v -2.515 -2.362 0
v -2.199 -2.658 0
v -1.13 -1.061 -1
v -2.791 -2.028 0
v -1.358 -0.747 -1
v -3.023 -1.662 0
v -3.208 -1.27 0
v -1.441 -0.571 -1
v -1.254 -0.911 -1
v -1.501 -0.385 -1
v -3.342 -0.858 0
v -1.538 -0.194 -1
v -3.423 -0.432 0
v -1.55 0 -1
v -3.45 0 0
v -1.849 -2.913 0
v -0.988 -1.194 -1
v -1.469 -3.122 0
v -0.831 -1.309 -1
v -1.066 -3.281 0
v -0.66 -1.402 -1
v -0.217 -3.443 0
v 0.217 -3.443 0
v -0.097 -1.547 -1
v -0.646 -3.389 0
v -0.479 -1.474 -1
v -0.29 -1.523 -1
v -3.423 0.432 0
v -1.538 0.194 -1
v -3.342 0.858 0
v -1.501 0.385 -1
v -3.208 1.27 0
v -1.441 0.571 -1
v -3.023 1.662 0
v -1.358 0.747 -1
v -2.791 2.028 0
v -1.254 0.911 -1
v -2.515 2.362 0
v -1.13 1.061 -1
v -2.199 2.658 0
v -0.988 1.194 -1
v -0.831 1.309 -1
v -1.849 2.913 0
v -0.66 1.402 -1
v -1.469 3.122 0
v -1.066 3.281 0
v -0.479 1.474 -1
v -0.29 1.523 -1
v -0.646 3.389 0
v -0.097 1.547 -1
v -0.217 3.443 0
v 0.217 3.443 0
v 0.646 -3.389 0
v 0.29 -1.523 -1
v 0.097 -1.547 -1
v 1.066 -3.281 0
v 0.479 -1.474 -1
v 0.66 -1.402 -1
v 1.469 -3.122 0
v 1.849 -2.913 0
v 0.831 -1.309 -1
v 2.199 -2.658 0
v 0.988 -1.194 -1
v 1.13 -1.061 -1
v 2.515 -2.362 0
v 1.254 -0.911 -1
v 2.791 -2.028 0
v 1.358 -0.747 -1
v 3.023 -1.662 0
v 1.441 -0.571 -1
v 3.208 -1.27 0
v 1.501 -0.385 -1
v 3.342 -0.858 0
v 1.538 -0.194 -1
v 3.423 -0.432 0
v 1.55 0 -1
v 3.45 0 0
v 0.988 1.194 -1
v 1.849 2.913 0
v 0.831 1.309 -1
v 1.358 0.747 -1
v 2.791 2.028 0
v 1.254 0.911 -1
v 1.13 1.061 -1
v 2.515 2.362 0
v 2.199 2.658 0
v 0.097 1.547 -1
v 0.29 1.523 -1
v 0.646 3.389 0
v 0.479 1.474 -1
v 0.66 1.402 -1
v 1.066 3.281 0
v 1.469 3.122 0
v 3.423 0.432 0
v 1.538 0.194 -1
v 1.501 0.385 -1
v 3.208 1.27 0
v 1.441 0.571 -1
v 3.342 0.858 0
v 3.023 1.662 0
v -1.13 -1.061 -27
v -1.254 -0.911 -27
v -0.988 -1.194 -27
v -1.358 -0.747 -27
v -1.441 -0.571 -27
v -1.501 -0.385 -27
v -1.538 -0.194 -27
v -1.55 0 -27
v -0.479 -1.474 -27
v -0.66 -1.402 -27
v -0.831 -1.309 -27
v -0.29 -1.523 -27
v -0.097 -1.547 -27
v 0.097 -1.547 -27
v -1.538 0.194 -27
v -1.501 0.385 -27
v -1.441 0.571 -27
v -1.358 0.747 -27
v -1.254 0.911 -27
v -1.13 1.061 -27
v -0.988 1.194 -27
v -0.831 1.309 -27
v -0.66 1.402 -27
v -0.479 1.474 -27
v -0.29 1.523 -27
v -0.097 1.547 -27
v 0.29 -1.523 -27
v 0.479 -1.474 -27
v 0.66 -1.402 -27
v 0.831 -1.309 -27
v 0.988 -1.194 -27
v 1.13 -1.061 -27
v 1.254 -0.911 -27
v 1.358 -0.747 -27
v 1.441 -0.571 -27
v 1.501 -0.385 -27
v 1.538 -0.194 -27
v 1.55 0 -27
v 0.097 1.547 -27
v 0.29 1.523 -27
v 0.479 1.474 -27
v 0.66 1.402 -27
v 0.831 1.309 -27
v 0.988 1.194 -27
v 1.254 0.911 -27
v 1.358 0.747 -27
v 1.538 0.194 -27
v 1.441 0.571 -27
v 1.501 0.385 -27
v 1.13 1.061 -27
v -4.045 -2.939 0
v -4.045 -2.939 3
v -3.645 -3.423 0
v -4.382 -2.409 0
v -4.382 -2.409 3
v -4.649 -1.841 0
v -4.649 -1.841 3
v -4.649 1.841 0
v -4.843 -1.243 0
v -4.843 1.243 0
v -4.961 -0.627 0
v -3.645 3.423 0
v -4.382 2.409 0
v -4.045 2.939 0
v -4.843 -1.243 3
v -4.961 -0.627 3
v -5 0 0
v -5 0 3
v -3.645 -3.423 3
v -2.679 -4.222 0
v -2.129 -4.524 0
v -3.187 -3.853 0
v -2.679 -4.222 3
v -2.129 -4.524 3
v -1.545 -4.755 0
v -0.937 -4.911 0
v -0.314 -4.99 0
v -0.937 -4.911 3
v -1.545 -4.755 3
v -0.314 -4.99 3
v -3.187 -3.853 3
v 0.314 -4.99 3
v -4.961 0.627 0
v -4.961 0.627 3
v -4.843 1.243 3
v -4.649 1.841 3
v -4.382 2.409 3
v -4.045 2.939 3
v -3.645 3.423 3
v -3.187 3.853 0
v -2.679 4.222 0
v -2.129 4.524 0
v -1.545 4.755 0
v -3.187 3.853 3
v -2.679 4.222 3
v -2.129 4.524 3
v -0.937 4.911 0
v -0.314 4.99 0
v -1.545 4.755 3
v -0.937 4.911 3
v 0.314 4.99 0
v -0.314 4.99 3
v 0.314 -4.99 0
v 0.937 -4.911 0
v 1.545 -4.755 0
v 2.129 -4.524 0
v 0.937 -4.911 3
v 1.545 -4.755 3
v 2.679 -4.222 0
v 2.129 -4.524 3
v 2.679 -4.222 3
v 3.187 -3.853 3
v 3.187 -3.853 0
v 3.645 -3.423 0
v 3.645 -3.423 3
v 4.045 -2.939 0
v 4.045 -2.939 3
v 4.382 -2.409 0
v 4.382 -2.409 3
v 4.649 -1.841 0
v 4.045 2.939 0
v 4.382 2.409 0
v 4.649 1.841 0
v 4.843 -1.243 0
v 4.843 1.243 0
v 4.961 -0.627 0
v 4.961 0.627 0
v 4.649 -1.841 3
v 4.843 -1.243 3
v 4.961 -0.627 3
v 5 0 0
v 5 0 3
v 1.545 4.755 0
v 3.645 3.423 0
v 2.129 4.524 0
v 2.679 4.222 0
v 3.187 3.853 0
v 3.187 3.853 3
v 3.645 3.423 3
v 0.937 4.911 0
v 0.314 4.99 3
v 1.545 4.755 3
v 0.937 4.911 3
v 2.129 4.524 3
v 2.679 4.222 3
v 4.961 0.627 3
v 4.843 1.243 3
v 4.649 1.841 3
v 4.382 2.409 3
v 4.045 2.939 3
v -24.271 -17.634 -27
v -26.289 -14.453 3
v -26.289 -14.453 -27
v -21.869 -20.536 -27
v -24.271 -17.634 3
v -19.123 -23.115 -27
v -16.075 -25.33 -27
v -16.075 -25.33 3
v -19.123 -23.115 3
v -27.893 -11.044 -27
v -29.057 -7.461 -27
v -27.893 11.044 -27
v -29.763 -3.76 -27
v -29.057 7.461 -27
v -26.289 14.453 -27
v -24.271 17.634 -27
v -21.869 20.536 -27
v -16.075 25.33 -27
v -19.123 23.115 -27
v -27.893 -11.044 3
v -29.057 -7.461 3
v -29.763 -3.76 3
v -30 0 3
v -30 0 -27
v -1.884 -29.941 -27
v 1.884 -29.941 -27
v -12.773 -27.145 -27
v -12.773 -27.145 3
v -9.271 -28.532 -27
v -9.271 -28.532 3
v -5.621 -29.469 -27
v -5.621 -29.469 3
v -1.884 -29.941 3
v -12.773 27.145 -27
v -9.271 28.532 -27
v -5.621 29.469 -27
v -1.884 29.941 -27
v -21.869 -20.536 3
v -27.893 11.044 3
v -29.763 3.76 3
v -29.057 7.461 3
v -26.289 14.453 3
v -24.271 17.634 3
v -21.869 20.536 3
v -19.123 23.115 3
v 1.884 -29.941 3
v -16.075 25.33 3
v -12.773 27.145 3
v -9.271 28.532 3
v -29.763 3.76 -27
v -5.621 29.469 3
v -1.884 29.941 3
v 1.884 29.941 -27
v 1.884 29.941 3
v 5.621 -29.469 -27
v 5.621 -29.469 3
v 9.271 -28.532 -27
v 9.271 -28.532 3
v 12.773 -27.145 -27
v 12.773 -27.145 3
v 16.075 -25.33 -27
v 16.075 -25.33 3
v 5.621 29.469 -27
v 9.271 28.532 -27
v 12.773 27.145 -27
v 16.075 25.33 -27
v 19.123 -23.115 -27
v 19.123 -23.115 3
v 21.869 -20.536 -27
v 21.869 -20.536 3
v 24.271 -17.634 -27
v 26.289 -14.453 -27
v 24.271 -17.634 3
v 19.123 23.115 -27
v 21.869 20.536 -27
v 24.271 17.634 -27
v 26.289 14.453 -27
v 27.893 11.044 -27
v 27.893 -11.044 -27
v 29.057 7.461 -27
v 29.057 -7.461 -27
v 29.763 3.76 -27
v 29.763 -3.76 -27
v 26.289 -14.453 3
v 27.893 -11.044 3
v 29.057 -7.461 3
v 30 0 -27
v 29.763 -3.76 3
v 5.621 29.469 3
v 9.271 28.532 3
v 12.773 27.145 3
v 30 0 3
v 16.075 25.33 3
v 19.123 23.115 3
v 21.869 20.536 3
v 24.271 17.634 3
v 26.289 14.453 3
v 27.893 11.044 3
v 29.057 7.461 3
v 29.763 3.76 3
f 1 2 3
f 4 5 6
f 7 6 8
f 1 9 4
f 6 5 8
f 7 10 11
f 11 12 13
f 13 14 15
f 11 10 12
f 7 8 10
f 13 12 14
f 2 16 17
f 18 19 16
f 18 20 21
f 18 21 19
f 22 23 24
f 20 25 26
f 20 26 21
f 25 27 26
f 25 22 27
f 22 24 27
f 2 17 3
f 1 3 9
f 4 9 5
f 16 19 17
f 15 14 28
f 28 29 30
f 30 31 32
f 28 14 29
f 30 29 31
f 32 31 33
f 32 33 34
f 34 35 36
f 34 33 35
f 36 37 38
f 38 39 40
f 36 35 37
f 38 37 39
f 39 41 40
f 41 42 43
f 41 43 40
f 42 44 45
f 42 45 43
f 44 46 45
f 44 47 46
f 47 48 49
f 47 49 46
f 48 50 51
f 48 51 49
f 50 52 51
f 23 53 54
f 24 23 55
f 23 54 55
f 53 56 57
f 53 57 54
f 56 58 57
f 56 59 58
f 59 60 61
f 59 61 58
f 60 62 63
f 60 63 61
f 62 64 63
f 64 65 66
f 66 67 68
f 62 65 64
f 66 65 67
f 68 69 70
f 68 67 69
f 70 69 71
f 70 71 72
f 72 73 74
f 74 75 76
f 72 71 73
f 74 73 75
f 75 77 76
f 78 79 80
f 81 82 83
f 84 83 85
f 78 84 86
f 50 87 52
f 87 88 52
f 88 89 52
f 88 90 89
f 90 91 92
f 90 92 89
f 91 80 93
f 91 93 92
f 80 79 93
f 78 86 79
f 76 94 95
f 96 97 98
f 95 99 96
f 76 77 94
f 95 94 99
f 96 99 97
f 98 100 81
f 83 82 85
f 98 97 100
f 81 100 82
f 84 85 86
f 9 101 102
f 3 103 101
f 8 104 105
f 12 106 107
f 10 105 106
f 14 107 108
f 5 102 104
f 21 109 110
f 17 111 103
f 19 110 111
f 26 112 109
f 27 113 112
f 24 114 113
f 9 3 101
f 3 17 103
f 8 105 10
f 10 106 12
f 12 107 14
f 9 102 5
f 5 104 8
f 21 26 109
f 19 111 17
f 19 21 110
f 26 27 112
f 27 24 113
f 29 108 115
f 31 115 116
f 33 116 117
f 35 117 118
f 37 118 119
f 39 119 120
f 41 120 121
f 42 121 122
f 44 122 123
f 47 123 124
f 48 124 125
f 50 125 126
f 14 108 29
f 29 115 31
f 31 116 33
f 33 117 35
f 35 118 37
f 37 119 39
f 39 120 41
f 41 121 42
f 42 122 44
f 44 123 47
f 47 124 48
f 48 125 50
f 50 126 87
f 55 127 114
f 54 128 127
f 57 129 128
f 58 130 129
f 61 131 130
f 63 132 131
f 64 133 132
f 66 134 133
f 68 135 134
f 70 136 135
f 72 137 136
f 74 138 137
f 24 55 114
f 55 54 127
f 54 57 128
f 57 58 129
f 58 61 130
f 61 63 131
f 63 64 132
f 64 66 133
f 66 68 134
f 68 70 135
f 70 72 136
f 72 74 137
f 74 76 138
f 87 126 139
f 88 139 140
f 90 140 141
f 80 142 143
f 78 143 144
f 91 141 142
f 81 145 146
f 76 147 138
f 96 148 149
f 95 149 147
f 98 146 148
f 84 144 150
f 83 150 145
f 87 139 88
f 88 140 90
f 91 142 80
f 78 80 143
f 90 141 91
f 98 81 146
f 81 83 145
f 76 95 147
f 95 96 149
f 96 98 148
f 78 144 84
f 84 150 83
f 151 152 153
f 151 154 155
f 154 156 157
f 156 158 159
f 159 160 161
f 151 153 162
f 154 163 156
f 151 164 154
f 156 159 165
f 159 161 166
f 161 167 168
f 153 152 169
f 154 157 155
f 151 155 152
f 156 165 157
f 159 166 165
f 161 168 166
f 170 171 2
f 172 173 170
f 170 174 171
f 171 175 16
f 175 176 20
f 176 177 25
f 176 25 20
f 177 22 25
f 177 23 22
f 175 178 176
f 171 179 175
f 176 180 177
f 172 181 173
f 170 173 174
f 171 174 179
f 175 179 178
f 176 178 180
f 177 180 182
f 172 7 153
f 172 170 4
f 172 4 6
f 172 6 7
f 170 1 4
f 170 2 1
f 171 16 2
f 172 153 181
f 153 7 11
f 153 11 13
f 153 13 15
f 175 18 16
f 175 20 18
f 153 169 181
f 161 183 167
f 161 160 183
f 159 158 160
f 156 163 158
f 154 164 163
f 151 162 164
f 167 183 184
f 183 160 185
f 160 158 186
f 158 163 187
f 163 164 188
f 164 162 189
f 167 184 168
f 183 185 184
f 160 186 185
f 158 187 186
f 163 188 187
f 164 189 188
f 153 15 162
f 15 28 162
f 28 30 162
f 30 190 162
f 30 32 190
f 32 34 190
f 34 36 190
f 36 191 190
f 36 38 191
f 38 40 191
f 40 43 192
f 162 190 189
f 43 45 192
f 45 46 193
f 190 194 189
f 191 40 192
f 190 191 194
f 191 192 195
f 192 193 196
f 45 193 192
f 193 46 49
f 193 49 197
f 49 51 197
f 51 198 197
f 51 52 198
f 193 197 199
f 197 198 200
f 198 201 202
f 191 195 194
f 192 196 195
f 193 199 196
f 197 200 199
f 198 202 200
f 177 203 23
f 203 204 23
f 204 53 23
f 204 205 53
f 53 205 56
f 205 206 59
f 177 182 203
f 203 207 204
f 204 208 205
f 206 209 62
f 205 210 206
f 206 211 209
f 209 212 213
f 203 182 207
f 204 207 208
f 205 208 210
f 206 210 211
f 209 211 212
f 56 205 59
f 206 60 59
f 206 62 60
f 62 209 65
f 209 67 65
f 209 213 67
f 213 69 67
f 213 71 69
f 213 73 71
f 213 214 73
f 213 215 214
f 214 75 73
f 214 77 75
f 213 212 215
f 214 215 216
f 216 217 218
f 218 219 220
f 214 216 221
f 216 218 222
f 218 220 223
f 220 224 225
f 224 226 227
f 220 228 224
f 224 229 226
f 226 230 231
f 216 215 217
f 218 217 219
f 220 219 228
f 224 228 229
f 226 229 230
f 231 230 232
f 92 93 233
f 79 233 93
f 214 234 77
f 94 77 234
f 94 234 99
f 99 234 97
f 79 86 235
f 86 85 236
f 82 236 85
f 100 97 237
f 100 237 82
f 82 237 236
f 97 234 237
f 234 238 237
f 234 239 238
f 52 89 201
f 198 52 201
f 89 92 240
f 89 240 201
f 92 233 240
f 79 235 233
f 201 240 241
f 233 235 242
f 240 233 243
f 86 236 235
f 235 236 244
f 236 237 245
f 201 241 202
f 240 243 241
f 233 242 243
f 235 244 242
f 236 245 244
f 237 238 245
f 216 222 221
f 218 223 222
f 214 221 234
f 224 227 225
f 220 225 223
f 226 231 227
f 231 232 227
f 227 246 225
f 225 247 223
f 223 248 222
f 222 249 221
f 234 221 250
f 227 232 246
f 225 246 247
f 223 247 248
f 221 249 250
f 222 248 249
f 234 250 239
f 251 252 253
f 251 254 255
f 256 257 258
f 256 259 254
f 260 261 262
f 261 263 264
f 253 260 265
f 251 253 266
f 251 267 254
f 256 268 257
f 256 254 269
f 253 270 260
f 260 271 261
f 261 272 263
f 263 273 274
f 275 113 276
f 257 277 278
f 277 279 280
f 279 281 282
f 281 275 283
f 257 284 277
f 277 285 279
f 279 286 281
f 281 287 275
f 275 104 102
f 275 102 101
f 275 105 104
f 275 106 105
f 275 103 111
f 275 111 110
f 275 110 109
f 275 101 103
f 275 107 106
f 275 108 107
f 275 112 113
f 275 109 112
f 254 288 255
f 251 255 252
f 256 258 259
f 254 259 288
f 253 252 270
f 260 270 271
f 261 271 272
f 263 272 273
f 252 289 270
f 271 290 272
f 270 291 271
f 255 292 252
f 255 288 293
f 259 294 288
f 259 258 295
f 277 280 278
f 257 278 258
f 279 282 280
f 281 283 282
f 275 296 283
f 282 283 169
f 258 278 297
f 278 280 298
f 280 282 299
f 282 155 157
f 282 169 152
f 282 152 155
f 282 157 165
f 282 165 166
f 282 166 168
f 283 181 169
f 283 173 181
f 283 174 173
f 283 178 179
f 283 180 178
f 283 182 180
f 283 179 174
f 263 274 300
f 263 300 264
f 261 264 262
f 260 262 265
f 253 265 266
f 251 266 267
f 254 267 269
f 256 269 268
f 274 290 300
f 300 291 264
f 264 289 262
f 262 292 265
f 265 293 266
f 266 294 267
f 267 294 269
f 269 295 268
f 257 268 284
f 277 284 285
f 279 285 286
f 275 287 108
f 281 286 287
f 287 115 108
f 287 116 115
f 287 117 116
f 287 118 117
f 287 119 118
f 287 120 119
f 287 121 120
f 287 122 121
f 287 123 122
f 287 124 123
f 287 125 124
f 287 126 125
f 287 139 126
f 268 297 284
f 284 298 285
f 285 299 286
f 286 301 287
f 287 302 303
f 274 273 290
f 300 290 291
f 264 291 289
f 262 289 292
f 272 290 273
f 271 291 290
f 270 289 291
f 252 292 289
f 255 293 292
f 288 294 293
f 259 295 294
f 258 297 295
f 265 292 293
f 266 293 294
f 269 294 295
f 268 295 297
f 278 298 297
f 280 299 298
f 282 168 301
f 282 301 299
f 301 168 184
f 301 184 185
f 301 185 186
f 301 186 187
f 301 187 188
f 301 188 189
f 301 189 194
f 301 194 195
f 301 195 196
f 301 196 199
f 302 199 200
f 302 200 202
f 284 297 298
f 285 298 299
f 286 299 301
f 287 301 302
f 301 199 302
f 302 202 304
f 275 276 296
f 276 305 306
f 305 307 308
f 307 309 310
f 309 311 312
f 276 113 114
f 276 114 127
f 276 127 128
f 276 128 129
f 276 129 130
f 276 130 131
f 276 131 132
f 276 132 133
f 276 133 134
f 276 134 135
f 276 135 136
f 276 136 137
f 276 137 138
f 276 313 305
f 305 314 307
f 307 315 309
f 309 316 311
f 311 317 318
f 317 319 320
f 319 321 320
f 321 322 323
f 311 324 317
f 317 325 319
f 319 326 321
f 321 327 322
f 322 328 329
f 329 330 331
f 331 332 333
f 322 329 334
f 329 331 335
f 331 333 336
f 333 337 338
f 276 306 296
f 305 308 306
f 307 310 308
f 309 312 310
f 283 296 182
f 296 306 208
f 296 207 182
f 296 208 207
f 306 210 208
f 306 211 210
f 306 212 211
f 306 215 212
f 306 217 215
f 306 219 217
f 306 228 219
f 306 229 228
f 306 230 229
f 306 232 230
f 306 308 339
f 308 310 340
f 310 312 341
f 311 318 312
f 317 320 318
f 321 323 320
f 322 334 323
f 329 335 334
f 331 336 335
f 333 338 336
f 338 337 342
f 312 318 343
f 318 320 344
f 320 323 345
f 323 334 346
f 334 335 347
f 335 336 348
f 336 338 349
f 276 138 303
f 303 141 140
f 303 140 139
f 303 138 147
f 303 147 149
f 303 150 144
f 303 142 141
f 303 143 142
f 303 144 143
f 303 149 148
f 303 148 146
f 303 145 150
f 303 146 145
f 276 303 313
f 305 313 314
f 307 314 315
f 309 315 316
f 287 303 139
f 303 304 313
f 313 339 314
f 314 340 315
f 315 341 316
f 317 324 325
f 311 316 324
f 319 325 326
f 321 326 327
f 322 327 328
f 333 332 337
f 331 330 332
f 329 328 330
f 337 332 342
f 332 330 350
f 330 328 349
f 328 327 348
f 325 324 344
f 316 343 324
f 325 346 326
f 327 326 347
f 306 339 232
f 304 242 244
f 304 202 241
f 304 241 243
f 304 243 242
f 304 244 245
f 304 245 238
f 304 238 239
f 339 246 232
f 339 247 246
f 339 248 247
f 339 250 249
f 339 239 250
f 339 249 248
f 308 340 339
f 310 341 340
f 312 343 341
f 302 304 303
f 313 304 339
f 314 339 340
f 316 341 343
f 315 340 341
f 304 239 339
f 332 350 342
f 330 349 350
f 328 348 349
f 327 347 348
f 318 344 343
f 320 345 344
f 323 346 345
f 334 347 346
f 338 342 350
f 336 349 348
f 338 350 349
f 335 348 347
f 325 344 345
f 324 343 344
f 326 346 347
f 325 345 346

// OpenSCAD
$fn = 50;

difference() {
	union() {
		translate(v = [0, 0, -27.0]) {
			cylinder(h = 30, r = 30.0);
		}
	}
	union() {
		translate(v = [0, 0, 0]) {
			rotate(a = [0, 0, 0]) {
				difference() {
					union() {
						translate(v = [0, 0, -30.0]) {
							cylinder(h = 30, r = 1.25);
						}
						translate(v = [0, 0, -1.0]) {
							cylinder(h = 1.0, r1 = 1.55, r2 = 3.45);
						}
						translate(v = [0, 0, -30.0]) {
							cylinder(h = 30, r = 1.55);
						}
						translate(v = [0, 0, -30.0]) {
							cylinder(h = 30, r = 1.25);
						}
					}
					union();
				}
			}
		}
		#cylinder(h = 3, r = 5.0);
	}
}
